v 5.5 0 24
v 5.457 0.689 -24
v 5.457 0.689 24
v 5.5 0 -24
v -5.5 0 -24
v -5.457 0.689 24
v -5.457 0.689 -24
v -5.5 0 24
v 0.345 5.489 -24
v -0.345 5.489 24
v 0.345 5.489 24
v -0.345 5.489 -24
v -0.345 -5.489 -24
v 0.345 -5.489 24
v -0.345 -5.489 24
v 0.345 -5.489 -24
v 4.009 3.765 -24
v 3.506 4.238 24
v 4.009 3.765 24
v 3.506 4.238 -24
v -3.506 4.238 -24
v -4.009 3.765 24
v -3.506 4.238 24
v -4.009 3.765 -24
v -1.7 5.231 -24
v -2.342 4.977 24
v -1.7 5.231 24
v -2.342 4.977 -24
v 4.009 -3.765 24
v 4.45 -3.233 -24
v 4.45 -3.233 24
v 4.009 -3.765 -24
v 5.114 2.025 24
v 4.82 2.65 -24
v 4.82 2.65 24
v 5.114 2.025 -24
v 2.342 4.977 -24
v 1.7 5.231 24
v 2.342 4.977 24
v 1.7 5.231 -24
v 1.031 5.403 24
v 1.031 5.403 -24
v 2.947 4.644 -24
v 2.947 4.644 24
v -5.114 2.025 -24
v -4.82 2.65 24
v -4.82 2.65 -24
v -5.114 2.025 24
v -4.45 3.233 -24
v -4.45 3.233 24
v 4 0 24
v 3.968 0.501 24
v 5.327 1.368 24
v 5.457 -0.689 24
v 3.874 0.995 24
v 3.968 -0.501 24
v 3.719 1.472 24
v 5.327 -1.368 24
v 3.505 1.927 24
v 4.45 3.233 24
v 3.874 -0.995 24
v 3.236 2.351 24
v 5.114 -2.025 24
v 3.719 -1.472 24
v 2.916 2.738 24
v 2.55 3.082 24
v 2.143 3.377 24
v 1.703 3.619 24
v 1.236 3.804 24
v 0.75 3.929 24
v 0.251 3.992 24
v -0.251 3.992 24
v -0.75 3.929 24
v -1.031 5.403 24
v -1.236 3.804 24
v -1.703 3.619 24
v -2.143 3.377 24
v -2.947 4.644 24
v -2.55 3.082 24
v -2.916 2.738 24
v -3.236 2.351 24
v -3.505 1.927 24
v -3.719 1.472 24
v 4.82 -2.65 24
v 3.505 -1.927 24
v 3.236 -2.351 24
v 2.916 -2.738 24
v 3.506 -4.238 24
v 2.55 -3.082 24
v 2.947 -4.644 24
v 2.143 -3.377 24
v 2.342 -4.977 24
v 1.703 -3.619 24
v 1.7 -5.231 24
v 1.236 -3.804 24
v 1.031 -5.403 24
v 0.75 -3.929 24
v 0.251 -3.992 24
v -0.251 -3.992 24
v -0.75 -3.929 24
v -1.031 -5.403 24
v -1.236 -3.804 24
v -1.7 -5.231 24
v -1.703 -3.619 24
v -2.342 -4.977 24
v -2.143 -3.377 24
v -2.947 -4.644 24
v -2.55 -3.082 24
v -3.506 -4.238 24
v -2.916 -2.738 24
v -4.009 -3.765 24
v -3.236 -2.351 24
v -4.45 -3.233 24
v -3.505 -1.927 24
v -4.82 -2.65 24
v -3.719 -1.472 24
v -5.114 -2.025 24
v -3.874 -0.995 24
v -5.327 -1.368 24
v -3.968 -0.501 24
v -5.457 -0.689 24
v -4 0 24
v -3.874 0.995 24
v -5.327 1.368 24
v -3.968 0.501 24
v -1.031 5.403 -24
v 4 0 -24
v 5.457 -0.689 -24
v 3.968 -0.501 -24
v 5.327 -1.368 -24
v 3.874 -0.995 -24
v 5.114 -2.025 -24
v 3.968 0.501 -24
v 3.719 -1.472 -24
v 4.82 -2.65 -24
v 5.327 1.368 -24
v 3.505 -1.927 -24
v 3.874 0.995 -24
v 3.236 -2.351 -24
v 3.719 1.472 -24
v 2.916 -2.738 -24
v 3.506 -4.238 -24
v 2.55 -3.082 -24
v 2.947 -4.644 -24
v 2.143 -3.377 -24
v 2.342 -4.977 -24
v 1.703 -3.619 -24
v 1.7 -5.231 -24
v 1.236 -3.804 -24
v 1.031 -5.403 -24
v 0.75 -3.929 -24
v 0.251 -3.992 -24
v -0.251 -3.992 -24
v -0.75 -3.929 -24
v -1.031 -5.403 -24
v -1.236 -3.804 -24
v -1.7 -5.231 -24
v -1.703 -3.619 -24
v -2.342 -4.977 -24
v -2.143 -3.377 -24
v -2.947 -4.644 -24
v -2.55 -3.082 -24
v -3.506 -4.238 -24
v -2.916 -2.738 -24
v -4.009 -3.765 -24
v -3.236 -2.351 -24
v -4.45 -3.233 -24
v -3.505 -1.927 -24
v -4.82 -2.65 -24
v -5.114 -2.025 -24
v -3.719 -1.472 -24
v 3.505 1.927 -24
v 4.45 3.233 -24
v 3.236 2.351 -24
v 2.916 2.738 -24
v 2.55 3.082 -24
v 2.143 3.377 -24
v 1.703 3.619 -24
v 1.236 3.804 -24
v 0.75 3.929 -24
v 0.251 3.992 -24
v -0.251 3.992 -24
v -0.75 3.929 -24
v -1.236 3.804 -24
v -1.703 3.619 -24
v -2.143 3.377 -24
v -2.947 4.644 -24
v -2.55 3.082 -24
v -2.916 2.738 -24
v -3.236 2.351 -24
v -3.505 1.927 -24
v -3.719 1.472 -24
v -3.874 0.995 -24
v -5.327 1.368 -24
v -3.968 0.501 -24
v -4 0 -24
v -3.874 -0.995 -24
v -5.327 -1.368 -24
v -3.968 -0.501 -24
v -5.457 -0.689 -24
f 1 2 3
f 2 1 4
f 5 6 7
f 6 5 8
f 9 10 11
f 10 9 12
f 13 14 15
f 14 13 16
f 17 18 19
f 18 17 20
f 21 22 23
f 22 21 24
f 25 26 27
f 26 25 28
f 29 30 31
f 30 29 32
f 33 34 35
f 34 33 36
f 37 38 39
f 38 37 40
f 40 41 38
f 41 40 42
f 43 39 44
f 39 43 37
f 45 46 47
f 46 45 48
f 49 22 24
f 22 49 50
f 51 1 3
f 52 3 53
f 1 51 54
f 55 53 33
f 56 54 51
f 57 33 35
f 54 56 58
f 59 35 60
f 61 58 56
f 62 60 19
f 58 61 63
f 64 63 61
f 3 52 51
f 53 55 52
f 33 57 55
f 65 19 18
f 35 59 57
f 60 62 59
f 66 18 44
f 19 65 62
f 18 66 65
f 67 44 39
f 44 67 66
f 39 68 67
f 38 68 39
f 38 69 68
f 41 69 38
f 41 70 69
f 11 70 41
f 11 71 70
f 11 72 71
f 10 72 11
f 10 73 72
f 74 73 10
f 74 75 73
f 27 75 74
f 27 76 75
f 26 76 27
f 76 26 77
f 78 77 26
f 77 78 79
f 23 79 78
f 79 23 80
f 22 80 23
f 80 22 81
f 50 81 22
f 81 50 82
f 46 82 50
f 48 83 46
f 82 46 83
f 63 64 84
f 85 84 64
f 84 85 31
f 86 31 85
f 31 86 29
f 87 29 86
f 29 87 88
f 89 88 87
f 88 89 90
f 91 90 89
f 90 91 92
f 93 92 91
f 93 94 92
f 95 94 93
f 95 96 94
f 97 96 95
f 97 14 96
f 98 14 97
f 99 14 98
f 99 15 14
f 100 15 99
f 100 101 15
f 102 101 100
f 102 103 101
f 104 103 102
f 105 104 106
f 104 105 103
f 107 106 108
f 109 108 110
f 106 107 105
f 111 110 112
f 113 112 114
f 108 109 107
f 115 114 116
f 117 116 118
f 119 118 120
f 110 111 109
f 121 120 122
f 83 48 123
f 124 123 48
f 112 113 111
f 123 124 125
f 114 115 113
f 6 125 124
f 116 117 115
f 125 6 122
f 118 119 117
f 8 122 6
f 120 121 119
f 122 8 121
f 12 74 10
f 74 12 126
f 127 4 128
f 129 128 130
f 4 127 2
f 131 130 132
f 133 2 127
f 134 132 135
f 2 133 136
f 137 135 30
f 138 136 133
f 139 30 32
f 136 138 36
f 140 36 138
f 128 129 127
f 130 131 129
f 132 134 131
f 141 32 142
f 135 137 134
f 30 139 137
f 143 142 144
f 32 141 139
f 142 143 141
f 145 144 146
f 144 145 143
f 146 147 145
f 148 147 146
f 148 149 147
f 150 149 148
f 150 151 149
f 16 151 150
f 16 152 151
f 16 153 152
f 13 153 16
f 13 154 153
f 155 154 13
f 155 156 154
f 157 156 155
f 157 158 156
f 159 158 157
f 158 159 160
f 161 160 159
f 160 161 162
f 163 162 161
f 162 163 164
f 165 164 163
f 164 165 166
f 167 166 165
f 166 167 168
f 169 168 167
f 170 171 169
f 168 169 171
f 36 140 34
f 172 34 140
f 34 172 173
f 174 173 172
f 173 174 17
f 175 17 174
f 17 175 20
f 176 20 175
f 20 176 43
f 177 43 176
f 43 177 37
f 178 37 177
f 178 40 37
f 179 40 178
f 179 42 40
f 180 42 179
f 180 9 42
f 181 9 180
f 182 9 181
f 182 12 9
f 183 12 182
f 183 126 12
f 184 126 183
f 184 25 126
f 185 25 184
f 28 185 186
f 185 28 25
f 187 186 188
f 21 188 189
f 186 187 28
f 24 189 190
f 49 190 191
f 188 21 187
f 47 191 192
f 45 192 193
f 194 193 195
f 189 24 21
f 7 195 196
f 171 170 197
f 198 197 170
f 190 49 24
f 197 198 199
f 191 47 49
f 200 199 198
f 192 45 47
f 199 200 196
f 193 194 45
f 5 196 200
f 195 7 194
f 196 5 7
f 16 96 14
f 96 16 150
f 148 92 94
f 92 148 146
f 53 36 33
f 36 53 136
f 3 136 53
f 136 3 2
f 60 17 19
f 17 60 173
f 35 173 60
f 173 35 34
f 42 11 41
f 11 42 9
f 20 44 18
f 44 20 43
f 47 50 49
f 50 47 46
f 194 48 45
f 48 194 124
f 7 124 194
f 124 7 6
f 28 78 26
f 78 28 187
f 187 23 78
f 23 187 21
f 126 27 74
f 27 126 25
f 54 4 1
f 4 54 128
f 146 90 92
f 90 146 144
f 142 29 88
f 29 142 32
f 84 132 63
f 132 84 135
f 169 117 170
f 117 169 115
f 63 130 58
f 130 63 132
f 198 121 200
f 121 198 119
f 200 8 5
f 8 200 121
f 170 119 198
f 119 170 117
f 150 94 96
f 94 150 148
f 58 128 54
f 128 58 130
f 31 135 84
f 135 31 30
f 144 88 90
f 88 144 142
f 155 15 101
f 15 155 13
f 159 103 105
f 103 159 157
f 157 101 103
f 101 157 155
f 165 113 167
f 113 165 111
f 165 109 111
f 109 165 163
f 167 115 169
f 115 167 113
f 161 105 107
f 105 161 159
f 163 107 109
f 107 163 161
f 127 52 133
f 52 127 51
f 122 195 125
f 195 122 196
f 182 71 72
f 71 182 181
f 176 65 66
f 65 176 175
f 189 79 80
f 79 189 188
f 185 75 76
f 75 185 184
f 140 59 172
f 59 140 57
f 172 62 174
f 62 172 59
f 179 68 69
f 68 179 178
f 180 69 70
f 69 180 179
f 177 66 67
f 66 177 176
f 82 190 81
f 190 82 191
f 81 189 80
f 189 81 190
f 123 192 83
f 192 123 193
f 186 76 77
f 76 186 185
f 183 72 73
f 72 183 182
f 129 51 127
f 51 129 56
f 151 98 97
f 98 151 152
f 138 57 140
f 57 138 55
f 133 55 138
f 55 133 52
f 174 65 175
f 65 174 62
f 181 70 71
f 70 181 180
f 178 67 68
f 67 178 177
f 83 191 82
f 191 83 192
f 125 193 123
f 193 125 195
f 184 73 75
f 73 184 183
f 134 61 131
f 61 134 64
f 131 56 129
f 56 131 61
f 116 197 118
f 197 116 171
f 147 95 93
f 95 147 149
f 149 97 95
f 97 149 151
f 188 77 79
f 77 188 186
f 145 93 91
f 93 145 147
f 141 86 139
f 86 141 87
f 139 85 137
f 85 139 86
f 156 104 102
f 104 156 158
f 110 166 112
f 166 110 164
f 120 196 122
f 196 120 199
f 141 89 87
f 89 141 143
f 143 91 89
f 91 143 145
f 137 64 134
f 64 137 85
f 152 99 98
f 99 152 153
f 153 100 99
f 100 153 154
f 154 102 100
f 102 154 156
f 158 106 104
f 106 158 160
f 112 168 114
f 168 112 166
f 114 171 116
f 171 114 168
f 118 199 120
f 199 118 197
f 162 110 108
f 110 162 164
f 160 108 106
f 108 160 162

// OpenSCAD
$fn = 50;


difference() {
	union() {
		translate(v = [0, 0, -24.0000000000]) {
			cylinder(h = 48, r = 5.5000000000);
		}
	}
	union() {
		translate(v = [0, 0, -100.0000000000]) {
			cylinder(h = 200, r = 4);
		}
	}
}
